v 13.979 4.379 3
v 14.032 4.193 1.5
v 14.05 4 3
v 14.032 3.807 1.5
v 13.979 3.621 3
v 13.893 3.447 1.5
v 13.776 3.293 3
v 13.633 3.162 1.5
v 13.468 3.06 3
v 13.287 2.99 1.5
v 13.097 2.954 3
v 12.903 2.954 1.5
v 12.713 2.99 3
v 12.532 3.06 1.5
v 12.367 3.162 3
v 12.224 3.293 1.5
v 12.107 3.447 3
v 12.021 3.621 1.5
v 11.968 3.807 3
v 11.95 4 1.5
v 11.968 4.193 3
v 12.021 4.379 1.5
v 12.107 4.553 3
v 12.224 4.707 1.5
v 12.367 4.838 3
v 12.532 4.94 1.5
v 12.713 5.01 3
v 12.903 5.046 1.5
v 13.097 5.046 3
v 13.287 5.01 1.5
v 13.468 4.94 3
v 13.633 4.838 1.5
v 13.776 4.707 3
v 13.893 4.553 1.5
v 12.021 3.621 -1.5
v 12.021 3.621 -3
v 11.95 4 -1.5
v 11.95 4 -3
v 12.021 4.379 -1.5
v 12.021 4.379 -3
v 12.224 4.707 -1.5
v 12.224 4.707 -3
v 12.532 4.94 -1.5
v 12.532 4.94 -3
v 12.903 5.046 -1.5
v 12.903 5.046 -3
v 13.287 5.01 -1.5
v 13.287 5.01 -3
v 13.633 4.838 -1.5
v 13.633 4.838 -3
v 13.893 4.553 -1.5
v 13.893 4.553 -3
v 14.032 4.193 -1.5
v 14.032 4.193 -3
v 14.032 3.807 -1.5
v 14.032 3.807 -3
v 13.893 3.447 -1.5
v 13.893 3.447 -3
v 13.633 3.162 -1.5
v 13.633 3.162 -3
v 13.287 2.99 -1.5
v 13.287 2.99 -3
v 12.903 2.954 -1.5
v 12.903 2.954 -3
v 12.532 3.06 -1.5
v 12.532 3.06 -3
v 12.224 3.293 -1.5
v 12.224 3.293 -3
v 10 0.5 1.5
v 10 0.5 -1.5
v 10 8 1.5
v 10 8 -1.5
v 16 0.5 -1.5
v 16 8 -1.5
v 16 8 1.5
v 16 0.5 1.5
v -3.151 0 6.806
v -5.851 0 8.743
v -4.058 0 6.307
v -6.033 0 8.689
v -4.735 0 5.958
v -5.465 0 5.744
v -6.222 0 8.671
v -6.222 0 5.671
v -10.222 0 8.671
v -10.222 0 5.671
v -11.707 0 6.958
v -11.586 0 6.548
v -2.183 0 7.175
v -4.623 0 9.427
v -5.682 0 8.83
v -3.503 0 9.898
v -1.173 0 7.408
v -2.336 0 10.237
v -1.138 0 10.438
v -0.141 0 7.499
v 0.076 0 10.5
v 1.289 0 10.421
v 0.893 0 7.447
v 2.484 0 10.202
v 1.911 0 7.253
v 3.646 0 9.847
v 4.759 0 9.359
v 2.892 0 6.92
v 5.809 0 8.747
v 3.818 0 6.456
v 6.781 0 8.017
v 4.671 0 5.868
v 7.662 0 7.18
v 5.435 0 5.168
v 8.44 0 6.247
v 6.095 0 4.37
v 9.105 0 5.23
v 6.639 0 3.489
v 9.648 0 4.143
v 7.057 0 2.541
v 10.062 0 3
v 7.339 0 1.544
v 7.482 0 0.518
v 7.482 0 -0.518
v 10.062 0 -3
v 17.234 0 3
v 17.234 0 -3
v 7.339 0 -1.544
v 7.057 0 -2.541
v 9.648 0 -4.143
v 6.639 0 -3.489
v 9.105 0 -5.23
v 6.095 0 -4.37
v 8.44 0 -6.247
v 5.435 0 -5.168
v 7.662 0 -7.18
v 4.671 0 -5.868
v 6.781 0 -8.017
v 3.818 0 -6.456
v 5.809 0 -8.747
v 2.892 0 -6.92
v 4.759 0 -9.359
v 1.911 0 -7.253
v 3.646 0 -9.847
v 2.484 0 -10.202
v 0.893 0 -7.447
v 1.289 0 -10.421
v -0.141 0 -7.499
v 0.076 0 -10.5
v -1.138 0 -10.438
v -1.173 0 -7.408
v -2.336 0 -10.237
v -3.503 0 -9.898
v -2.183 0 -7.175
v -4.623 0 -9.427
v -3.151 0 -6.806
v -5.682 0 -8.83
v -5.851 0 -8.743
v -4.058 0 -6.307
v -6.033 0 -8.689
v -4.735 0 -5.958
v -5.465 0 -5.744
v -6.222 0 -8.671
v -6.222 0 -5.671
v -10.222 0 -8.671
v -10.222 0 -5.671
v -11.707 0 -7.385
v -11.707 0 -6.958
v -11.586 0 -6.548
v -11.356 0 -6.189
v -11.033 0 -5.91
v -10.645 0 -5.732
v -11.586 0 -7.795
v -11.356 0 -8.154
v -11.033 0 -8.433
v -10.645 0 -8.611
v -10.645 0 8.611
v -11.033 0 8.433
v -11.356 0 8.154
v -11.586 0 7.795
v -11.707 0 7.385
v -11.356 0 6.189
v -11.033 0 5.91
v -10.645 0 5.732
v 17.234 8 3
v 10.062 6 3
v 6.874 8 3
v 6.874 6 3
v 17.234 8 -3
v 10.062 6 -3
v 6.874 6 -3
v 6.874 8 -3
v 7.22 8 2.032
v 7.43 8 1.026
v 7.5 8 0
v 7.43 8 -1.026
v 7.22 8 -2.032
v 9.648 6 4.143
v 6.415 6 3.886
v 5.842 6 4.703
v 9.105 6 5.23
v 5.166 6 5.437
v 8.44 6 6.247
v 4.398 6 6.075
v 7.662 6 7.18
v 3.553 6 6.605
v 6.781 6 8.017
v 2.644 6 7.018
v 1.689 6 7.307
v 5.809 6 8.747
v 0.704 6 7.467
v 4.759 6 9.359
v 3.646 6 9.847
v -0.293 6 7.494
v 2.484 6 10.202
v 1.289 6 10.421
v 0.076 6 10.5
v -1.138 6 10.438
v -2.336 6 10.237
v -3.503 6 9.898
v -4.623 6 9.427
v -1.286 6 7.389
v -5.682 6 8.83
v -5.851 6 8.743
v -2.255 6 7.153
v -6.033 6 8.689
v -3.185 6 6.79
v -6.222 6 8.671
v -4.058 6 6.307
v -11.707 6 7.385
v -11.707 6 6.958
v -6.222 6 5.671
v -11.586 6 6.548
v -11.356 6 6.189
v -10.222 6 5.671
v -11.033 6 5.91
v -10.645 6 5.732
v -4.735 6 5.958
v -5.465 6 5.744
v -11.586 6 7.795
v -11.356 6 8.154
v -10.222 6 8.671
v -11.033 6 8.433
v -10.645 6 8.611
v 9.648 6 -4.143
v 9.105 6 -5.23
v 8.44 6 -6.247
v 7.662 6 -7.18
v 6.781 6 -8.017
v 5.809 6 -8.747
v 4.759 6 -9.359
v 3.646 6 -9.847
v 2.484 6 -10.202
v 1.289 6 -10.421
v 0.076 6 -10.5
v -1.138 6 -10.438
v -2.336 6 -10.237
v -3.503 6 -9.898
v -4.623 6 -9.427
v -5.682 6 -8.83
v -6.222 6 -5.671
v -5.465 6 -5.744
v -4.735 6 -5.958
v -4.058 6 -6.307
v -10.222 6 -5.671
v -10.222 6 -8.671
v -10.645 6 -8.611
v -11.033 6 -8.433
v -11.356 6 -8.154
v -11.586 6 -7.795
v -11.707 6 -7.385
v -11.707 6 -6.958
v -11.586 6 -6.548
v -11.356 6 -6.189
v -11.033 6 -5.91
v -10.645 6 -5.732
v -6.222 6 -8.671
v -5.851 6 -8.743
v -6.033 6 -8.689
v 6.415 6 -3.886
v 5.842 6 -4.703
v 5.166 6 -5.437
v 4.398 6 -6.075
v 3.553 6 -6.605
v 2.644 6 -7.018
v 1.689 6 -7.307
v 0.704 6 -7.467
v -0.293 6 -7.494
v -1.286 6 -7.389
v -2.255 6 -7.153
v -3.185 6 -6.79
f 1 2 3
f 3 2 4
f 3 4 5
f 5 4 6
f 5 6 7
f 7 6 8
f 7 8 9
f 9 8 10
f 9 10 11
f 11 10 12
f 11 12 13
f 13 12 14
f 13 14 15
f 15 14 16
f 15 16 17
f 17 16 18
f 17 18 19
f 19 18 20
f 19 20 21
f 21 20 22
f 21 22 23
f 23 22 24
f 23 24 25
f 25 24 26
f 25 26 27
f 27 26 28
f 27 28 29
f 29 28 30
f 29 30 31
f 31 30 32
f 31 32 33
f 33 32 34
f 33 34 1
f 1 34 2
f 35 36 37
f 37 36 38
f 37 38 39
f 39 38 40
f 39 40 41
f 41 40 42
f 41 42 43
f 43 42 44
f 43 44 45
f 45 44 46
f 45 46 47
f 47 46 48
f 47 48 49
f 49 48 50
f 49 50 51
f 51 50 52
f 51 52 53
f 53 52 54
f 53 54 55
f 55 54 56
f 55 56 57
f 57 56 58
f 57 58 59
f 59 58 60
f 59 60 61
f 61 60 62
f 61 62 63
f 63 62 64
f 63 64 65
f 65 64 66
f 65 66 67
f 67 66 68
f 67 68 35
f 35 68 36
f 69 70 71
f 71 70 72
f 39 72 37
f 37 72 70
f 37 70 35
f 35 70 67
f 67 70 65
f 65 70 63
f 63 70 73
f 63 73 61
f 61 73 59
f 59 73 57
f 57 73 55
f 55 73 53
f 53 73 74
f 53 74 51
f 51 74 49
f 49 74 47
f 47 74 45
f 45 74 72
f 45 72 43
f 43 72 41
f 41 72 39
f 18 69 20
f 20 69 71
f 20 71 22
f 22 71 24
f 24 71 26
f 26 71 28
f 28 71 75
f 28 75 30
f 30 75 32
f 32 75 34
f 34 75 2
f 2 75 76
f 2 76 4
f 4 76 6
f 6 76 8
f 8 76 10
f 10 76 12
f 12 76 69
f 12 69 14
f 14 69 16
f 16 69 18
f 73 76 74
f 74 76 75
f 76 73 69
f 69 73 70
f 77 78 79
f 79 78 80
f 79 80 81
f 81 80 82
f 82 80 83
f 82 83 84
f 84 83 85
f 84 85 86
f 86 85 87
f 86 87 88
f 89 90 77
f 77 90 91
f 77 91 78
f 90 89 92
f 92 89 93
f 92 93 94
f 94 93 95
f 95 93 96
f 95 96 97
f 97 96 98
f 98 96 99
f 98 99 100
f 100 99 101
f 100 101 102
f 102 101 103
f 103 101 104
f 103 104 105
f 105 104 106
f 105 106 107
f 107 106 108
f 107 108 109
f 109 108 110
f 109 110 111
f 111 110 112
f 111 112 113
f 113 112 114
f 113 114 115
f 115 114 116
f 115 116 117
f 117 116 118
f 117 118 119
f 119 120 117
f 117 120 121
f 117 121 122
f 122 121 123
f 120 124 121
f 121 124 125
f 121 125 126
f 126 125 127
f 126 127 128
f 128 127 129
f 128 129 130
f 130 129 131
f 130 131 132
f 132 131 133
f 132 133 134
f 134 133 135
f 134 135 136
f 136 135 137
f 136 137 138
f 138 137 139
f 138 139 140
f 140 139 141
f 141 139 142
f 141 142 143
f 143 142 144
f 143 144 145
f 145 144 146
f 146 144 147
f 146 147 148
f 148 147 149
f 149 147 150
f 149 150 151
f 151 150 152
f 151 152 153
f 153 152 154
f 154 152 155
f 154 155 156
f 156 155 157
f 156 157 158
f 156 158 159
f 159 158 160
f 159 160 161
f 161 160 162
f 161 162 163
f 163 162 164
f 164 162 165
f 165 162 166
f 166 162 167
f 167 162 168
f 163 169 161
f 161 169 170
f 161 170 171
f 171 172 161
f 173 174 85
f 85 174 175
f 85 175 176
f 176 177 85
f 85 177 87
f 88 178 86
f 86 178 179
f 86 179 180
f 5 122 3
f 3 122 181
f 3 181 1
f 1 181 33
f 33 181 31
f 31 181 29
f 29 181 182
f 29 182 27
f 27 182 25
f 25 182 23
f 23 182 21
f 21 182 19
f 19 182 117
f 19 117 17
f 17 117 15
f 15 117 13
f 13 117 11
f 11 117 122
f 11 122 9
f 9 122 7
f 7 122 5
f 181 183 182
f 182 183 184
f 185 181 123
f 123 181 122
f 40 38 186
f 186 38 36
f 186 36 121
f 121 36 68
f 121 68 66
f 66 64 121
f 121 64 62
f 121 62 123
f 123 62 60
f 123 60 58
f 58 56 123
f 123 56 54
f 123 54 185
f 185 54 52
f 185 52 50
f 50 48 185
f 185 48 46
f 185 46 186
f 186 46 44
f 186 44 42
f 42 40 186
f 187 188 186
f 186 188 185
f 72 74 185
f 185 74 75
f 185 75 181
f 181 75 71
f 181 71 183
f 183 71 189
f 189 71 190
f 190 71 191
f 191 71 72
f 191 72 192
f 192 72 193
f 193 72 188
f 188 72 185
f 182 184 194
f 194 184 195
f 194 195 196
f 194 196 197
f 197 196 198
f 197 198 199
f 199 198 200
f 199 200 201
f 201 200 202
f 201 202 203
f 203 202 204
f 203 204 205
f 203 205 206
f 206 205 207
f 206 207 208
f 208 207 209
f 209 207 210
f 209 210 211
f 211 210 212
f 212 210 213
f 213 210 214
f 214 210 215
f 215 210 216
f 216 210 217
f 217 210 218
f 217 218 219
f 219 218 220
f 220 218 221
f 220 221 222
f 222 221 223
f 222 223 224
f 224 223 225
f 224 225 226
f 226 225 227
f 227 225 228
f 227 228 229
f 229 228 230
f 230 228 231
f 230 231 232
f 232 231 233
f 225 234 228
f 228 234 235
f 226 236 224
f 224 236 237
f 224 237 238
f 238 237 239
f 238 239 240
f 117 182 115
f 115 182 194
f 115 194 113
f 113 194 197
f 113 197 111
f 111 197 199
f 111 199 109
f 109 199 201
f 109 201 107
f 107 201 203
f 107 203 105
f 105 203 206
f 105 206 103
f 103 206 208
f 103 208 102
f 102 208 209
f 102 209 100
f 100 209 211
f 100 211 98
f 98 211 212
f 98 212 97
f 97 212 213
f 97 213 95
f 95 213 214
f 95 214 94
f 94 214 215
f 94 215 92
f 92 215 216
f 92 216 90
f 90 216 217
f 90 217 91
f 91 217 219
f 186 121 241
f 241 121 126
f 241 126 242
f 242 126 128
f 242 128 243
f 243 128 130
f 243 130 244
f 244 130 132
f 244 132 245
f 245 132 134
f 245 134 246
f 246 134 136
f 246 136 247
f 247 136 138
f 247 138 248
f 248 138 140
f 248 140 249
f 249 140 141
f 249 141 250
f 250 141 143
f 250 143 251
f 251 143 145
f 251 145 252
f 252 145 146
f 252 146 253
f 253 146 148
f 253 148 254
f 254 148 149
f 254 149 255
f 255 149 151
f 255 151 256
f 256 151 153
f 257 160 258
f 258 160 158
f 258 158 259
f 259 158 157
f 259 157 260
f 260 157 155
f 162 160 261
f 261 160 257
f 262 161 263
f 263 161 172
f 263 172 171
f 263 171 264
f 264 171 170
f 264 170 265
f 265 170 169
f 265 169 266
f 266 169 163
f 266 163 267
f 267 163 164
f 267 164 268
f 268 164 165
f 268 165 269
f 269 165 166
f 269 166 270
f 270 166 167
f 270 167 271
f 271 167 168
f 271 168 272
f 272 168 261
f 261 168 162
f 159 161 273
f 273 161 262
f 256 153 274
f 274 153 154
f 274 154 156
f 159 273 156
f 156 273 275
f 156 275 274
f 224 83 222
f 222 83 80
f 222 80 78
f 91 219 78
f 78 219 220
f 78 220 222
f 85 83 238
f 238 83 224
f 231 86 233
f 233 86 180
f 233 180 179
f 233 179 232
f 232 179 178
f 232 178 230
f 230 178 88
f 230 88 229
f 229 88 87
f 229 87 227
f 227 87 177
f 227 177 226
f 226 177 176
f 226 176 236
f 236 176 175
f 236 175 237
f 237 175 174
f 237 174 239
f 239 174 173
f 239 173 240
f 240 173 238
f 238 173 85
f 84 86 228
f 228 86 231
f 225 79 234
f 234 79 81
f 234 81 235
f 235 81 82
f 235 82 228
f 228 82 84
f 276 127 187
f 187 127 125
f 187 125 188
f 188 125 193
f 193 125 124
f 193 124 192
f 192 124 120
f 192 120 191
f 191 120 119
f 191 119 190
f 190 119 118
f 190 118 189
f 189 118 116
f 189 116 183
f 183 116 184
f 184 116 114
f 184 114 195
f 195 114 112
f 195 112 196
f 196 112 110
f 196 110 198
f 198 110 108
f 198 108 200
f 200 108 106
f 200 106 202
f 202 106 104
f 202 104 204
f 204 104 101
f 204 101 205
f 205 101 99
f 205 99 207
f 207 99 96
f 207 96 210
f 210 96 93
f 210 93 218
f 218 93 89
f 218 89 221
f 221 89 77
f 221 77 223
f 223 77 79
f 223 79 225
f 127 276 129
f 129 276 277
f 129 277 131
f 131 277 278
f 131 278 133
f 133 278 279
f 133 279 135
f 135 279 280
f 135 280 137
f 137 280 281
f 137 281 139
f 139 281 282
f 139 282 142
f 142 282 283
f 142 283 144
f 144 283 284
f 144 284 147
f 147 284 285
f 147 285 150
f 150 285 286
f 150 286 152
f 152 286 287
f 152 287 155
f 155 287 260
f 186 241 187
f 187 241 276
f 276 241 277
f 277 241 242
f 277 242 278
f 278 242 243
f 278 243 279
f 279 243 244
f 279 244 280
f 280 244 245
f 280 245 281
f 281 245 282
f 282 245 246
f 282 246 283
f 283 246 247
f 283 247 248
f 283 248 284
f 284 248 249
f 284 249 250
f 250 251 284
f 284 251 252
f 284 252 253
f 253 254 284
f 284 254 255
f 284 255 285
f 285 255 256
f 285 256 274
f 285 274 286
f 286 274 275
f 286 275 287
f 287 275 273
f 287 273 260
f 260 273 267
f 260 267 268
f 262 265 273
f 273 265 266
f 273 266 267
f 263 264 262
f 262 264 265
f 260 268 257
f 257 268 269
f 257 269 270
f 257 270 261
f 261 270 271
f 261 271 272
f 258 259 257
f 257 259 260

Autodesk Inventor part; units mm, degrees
ref_plane "YZ Plane" through (0, 0, 0) normal (1, 0, 0) x (0, 1, 0)
ref_plane "XZ Plane" through (0, 0, 0) normal (0, 1, 0) x (-1, 0, 0)
sketch "Sketch1" plane through (0, 0, 0) normal (0, 1, 0) x (-1, 0, 0)
  circle A0 centre (0, 0) radius 7.5
  circle A1 centre (0, 0) radius 10.5
  line L0 (0, 0) -> (5.6818, 8.8299) construction
  line L1 (0, 0) -> (0, 10.5)
  line L2 (6.222, 8.6714) -> (10.222, 8.6714)
  arc A2 (5.6818, 8.8299) -> (6.222, 8.6714) centre (6.222, 9.6714) ccw
  line L3 (6.222, 5.6714) -> (10.222, 5.6714)
  arc A3 (4.0584, 6.3071) -> (6.222, 5.6714) centre (6.222, 9.6714) ccw
  line L4 (10.222, 8.6714) -> (10.222, 5.6714) construction
  arc A4 (10.222, 5.6714) -> (10.222, 8.6714) centre (10.222, 7.1714) ccw
  line L5 (0, 0) -> (7.5, 0)
  line L6 (6.222, -8.6714) -> (10.222, -8.6714)
  arc A5 (6.222, -8.6714) -> (5.6818, -8.8299) centre (6.222, -9.6714) ccw
  line L7 (6.222, -5.6714) -> (10.222, -5.6714)
  arc A6 (6.222, -5.6714) -> (4.0584, -6.3071) centre (6.222, -9.6714) ccw
  arc A7 (10.222, -8.6714) -> (10.222, -5.6714) centre (10.222, -7.1714) ccw
  point P0 (4.0584, -6.3071)
  dimension "d0" = 15
  dimension "d1" = 3
  dimension "d2" = 32.76
  dimension "d3" = 1
  dimension "d4" = 3
  dimension "d5" = 4
  dimension "d6" = 6.222
  dimension "d7" = 4
extrude "Extrusion1" add sketch "Sketch1" along normal blind 6 contours A0 L1 A1 L3 A3 | A6 L7 A1 L1 A0 | A1 A2 L2 A4 L3 | L7 A7 L6 A5 A1
sketch "Sketch2" plane through (0, 0, 0) normal (0, -1, 0) x (1, 0, 0)
  arc A0 (-5.6818, -8.8299) -> (-5.6818, 8.8299) centre (0, 0) ccw projected
  line L0 (6.8739, 3) -> (17.234, 3)
  line L1 (17.234, 3) -> (17.234, -3)
  line L2 (17.234, -3) -> (6.8739, -3)
  line L3 (6.8739, -3) -> (6.8739, 3)
  line L4 (10.5, 0) -> (17.234, 0)
  arc A1 (-4.0584, -6.3071) -> (-4.0584, 6.3071) centre (0, 0) ccw projected
  circle A2 centre (0, 0) radius 7.5 projected
  arc A3 (-5.6818, -8.8299) -> (-5.6818, 8.8299) centre (0, 0) ccw projected
  line L5 (10, -1.5) -> (16, -1.5)
  line L6 (16, -1.5) -> (16, 1.5)
  line L7 (16, 1.5) -> (10, 1.5)
  line L8 (10, 1.5) -> (10, -1.5)
  arc A4 (-4.0584, -6.3071) -> (-4.0584, 6.3071) centre (0, 0) ccw projected
  point P0 (10.0623, 3)
  point P1 (13.867, 0)
  point P2 (6.8739, -3)
  point P3 (10, 0)
  point P4 (7.5, 0)
  dimension "d11" = 6
  dimension "d12" = 1.234
  dimension "d14" = 6
  dimension "d20" = 2.5
  dimension "d25" = 3
extrude "Extrusion2" add sketch "Sketch2" against normal blind 8 contours L2 A1 L0 A0 L7 L8 L5 | A0 L5 L6 L4 L1 L2 | L5 L8 L7 A0 | A0 L4 L6 L5 | A0 L7 L6 L4 | L4 L6 L7 A0 L0 L1
ref_plane "Work Plane1" through (0, 0.5, 0) normal (0, -1, 0) x (1, 0, 0)
extrude "Extrusion3" cut sketch "Sketch2" against normal blind 8 from surface at -0.5 contours L5 L8 L7 A0 | A0 L4 L6 L5 | A0 L7 L6 L4
sketch "Sketch3" plane through (10.0623, 0, 3) normal (0, 0, 1) x (1, 0, 0)
  circle A0 centre (2.9377, 4) radius 1.05
  line L0 (5.9377, 0.5) -> (-0.0623, 0.5) projected
  point P0 (-10.0623, 0)
  point P1 (2.9377, 0.5)
  dimension "d21" = 2.1
  dimension "d22" = 3.5
extrude "Extrusion4" cut sketch "Sketch3" against normal through all
properties part number "sujetador_marcador_v2"
